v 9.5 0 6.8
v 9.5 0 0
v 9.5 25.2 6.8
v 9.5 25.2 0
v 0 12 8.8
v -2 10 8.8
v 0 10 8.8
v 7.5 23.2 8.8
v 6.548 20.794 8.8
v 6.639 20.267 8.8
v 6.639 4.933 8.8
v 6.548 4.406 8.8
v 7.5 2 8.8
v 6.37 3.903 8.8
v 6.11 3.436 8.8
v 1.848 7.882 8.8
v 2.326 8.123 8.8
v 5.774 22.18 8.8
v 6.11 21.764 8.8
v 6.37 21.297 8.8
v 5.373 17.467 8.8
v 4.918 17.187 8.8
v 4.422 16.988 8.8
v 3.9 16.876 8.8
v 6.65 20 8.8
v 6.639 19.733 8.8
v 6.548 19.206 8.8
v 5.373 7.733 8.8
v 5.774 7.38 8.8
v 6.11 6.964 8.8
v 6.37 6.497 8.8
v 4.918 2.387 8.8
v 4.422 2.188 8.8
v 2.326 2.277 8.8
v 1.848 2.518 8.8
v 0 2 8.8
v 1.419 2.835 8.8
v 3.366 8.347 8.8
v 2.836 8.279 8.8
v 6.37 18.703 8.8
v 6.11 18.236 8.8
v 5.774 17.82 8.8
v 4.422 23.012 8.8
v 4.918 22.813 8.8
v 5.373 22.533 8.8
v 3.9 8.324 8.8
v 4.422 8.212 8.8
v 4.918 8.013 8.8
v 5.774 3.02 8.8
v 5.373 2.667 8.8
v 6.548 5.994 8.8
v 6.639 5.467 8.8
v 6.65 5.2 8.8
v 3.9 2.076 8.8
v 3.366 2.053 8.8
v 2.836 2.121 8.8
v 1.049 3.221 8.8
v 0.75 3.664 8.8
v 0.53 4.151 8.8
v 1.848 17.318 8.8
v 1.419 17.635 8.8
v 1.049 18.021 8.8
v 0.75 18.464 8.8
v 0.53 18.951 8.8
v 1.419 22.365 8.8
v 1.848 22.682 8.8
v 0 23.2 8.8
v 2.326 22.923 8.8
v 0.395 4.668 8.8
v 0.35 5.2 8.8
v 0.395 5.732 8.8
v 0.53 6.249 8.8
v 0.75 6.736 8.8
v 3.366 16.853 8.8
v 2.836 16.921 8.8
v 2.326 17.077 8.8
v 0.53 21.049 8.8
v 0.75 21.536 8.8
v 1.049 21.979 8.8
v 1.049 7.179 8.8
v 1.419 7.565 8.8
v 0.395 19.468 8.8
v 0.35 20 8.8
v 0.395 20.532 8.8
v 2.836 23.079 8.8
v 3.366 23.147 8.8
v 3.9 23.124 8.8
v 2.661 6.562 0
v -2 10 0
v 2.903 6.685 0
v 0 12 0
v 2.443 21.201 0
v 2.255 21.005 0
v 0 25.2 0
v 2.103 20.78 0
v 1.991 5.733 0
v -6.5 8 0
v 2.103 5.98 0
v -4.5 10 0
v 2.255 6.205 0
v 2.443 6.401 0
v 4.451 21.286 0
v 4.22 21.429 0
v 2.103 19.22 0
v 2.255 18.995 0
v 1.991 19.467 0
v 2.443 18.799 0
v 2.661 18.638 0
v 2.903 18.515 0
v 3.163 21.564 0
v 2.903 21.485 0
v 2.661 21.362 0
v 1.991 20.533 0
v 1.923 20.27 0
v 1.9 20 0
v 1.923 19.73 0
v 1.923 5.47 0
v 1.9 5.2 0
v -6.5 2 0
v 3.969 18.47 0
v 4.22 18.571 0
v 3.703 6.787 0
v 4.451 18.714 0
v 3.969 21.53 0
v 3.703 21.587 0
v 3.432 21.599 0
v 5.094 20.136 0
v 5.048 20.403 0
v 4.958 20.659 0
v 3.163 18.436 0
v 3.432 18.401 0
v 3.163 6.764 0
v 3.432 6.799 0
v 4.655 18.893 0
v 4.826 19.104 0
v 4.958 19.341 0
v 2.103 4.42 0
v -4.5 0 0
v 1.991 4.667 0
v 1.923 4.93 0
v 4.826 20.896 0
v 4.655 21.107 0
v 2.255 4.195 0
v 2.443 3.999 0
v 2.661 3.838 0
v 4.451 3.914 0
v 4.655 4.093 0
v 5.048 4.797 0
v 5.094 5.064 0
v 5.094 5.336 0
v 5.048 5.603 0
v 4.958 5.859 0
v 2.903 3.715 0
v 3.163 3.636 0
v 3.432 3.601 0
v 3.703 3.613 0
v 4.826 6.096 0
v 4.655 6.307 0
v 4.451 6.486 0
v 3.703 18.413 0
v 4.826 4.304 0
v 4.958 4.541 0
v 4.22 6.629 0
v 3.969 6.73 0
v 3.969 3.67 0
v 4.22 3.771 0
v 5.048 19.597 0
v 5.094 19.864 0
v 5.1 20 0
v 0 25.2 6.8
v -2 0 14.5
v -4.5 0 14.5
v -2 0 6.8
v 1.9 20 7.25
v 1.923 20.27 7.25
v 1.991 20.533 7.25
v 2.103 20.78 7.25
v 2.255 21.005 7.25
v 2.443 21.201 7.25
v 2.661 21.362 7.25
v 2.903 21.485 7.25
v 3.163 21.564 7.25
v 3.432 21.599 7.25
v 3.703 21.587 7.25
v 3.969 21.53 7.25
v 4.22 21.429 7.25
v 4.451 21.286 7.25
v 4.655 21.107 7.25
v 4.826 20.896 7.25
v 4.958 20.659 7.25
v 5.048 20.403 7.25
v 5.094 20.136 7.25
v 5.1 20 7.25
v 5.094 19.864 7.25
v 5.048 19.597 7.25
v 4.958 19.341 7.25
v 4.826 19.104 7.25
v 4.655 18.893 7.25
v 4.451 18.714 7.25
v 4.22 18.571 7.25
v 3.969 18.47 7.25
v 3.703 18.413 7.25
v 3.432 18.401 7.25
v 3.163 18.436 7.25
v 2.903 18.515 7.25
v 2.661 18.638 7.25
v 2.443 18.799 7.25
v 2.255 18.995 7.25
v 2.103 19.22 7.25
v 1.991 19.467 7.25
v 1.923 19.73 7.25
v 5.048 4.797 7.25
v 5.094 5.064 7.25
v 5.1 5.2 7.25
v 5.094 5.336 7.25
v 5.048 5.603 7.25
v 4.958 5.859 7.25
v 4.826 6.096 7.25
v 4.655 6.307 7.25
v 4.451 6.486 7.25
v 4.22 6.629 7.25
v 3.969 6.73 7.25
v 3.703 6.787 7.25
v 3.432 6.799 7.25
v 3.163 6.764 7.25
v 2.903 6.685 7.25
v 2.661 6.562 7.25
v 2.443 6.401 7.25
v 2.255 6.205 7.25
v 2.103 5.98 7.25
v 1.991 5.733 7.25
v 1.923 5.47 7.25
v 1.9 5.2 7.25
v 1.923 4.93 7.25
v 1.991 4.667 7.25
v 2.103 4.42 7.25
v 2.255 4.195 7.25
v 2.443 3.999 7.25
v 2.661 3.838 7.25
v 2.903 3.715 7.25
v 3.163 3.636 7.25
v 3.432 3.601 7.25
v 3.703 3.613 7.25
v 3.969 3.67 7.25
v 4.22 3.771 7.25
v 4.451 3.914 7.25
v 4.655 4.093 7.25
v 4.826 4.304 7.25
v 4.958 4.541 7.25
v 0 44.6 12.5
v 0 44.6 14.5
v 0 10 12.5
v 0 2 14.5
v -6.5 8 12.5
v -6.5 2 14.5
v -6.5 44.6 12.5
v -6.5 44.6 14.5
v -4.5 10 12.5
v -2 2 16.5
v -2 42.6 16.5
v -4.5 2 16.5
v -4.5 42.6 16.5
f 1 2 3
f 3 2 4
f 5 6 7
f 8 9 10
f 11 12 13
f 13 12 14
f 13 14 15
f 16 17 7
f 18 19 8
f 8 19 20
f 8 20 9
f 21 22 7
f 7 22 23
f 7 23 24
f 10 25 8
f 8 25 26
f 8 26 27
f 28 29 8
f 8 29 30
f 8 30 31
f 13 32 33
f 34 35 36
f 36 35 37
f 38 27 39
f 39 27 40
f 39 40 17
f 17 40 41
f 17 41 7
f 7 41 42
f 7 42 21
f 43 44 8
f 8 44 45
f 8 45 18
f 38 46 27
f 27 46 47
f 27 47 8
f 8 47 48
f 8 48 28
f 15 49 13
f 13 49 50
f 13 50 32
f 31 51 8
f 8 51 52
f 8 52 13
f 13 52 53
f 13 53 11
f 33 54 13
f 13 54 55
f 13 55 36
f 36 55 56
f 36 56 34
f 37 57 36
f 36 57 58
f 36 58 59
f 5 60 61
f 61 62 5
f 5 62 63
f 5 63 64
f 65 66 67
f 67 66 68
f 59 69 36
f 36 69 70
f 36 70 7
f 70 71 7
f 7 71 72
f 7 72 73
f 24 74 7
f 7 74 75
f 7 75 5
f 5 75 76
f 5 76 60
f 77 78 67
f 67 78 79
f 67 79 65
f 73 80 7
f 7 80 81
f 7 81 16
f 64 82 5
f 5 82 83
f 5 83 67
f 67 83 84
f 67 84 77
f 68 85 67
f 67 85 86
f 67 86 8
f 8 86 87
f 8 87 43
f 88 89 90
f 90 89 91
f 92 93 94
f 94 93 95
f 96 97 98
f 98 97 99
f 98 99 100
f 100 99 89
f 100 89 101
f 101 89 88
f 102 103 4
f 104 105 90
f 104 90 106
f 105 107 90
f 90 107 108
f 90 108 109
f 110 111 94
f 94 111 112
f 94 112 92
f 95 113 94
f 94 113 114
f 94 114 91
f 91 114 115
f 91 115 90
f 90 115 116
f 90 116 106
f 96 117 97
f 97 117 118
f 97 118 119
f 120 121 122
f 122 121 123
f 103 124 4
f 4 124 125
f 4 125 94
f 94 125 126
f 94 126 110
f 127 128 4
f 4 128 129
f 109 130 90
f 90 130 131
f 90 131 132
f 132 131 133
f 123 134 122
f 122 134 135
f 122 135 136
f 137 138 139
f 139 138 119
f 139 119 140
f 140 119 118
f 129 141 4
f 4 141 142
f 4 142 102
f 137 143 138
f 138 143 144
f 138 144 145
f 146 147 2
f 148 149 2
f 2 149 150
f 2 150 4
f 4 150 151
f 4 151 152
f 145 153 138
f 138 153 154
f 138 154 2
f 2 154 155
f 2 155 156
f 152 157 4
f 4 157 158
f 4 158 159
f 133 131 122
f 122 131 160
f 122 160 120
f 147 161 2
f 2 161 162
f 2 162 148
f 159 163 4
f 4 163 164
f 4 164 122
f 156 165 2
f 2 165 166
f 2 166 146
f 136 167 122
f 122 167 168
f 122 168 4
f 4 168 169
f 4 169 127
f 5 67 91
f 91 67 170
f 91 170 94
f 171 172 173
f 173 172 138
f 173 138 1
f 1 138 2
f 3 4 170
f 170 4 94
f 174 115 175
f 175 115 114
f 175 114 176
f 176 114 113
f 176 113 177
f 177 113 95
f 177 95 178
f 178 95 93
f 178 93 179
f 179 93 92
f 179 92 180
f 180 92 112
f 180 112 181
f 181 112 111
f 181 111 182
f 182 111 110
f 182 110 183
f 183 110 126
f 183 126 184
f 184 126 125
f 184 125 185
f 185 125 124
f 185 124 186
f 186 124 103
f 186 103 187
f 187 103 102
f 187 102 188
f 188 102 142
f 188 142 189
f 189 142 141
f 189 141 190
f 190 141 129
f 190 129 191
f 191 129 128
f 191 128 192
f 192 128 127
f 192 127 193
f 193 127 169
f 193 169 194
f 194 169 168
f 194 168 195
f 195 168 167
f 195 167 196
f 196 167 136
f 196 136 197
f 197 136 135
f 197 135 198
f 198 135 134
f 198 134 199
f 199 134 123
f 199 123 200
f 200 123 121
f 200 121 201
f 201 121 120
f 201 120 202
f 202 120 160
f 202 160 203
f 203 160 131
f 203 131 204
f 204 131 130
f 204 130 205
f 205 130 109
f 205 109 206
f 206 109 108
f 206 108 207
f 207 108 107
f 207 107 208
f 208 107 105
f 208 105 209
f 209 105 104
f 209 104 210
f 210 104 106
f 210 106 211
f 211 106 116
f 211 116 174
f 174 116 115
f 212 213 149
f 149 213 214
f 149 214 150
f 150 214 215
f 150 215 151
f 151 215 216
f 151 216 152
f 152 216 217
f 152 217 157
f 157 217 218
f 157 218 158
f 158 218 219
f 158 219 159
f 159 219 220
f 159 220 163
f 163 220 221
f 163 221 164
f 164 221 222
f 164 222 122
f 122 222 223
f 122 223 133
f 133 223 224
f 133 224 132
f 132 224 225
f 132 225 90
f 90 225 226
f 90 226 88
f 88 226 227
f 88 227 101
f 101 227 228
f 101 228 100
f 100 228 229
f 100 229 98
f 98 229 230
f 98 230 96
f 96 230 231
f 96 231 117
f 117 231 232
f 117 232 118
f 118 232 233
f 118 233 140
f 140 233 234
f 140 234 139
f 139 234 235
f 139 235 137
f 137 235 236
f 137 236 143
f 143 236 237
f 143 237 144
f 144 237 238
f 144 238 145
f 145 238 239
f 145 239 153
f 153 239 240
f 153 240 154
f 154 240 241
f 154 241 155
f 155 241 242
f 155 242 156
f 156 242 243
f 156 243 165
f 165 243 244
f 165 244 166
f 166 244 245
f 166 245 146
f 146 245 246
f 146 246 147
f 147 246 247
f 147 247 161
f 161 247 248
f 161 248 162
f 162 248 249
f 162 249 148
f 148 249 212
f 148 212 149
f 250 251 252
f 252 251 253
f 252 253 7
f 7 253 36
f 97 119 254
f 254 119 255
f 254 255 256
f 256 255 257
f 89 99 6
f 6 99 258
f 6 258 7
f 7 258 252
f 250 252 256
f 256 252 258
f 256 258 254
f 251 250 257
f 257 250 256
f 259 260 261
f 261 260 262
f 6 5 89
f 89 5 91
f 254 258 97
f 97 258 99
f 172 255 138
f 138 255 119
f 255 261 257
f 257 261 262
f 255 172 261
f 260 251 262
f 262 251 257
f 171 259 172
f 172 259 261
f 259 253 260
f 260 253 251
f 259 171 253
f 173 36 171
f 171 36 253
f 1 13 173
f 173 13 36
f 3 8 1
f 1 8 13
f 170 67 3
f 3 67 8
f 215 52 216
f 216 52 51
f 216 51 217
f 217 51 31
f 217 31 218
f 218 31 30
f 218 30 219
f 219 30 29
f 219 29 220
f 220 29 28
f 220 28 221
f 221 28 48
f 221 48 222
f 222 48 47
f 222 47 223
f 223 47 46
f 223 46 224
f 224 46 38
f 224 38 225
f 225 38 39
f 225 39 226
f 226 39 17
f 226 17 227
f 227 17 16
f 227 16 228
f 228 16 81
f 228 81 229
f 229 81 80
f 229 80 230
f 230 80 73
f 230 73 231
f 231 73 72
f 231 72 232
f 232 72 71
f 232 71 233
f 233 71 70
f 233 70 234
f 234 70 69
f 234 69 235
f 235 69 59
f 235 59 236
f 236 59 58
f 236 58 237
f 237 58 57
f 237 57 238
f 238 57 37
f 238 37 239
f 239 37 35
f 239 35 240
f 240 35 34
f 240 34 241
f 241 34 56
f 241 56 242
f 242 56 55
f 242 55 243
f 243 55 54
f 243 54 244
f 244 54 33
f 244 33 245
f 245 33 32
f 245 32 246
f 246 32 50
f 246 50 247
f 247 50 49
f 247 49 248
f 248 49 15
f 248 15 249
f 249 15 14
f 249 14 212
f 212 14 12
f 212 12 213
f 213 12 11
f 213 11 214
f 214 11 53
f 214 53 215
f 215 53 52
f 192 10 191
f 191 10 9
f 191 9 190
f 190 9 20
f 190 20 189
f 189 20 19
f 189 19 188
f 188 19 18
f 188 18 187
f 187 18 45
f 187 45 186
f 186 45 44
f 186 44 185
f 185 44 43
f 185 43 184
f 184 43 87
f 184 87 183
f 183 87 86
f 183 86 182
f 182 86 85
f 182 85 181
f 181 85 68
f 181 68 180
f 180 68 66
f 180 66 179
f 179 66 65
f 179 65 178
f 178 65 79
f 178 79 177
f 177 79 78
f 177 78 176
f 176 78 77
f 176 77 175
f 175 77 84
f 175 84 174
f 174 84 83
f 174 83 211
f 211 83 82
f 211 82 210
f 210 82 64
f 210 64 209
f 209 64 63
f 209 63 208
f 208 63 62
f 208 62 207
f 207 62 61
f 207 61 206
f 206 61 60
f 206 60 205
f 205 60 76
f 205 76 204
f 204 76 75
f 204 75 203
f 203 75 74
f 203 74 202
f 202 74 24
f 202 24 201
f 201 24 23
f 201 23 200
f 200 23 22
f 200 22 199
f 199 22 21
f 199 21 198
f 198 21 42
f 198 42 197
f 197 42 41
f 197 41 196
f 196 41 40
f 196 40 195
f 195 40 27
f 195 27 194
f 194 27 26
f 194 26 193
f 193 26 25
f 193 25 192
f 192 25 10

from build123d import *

# Parameters (mm, degrees)
SKETCH1_R                       = 1.6
BOSS_EXTRUDE1_DEPTH             = 8.8
SKETCH2_W                       = 6.5
SKETCH2_H                       = 10
BOSS_EXTRUDE2_DEPTH             = 3.7
BOSS_EXTRUDE2_DIRECTION_2_REACH = 30.332
SKETCH3_W                       = 6.5
SKETCH3_H                       = 44.6
BOSS_EXTRUDE3_DEPTH             = 4
SKETCH4_W                       = 6.5
SKETCH4_H                       = 44.6
CUT_EXTRUDE1_DEPTH              = 51.173797943
CHAMFER2_SIZE                   = 2
CHAMFER3_SIZE                   = 1.55


with BuildPart() as part:
    # Sketch1 → Boss-Extrude1 (new body)
    with BuildSketch(Plane.XY):
        Polygon((0, 0), (8, 0), (9.5, 0), (9.5, 25.2), (8, 25.2), (0, 25.2), align=None)
        with Locations((3.5, 20)):
            Circle(SKETCH1_R, mode=Mode.SUBTRACT)
        with Locations(Location((3.5, 5.2, 0), (0, 0, 180))):
            Circle(SKETCH1_R, mode=Mode.SUBTRACT)
    extrude(amount=BOSS_EXTRUDE1_DEPTH)

    # Sketch2 → Boss-Extrude2 (add)
    with BuildSketch(Plane.XY.offset(8.8)):
        with Locations((12.75, 5)):
            Rectangle(SKETCH2_W, SKETCH2_H)
    boss_extrude2 = extrude(amount=BOSS_EXTRUDE2_DEPTH)

    # Boss-Extrude2 direction 2: up to this face of the body (flat: up to its plane)
    boss_extrude2_direction_2_end = Plane(part.part.faces().sort_by_distance((4.840035102, 12.6, 0))[0])
    # Sketch2 → Boss-Extrude2 direction 2 (add, up to the picked face)
    with BuildSketch(Plane.XY.offset(8.8), mode=Mode.PRIVATE) as boss_extrude2_direction_2_sk1:
        with Locations((12.75, 5)):
            Rectangle(SKETCH2_W, SKETCH2_H)
    boss_extrude2_direction_2_tool1 = split(extrude(boss_extrude2_direction_2_sk1.sketch, amount=-BOSS_EXTRUDE2_DIRECTION_2_REACH, mode=Mode.PRIVATE), bisect_by=boss_extrude2_direction_2_end, keep=Keep.BOTH, mode=Mode.PRIVATE)
    boss_extrude2_direction_2 = boss_extrude2_direction_2_tool1.solids().sort_by(Axis((12.75, 5, 8.8), (0, 0, -1)))[0]
    add(boss_extrude2_direction_2)

    # Sketch3 → Boss-Extrude3 (add)
    with BuildSketch(Plane.XY.offset(12.5)):
        with Locations((12.75, 22.3)):
            Rectangle(SKETCH3_W, SKETCH3_H)
    boss_extrude3 = extrude(amount=BOSS_EXTRUDE3_DEPTH)

    # Mirror1: Boss-Extrude2, Boss-Extrude2 direction 2, Boss-Extrude3 across plane
    add(boss_extrude2.mirror(Plane(origin=(4.75, 0, 0), x_dir=(0, 0, 1), z_dir=(1, 0, 0))))
    add(boss_extrude2_direction_2.mirror(Plane(origin=(4.75, 0, 0), x_dir=(0, 0, 1), z_dir=(1, 0, 0))))
    add(boss_extrude3.mirror(Plane(origin=(4.75, 0, 0), x_dir=(0, 0, 1), z_dir=(1, 0, 0))))

    # Sketch4 → Cut-Extrude1 (cut, through all)
    with BuildSketch(Plane.XY.offset(16.5)):
        with Locations((12.75, 22.3)):
            Rectangle(SKETCH4_W, SKETCH4_H)
    extrude(amount=-CUT_EXTRUDE1_DEPTH, mode=Mode.SUBTRACT)

    # Chamfer2
    chamfer2_edges = [part.edges().sort_by_distance(p)[0] for p in [
        (9.5, 12.6, 8.8),
        (4.75, 25.2, 8.8),
        (0, 10, 4.4),
        (0, 0, 12.65),
        (-6.5, 0, 8.25),
        (-6.5, 10, 6.25),
        (0, 22.3, 16.5),
        (-3.25, 44.6, 16.5),
        (-6.5, 22.3, 16.5),
        (-3.25, 0, 16.5),
        (4.75, 0, 8.8),
    ]]
    chamfer(chamfer2_edges, length=CHAMFER2_SIZE)

    # Chamfer3
    chamfer3_edges = [part.edges().sort_by_distance(p)[0] for p in [
        (1.9, 20, 8.8),
        (5.1, 5.2, 8.8),
    ]]
    chamfer(chamfer3_edges, length=CHAMFER3_SIZE)


solid = part.part
